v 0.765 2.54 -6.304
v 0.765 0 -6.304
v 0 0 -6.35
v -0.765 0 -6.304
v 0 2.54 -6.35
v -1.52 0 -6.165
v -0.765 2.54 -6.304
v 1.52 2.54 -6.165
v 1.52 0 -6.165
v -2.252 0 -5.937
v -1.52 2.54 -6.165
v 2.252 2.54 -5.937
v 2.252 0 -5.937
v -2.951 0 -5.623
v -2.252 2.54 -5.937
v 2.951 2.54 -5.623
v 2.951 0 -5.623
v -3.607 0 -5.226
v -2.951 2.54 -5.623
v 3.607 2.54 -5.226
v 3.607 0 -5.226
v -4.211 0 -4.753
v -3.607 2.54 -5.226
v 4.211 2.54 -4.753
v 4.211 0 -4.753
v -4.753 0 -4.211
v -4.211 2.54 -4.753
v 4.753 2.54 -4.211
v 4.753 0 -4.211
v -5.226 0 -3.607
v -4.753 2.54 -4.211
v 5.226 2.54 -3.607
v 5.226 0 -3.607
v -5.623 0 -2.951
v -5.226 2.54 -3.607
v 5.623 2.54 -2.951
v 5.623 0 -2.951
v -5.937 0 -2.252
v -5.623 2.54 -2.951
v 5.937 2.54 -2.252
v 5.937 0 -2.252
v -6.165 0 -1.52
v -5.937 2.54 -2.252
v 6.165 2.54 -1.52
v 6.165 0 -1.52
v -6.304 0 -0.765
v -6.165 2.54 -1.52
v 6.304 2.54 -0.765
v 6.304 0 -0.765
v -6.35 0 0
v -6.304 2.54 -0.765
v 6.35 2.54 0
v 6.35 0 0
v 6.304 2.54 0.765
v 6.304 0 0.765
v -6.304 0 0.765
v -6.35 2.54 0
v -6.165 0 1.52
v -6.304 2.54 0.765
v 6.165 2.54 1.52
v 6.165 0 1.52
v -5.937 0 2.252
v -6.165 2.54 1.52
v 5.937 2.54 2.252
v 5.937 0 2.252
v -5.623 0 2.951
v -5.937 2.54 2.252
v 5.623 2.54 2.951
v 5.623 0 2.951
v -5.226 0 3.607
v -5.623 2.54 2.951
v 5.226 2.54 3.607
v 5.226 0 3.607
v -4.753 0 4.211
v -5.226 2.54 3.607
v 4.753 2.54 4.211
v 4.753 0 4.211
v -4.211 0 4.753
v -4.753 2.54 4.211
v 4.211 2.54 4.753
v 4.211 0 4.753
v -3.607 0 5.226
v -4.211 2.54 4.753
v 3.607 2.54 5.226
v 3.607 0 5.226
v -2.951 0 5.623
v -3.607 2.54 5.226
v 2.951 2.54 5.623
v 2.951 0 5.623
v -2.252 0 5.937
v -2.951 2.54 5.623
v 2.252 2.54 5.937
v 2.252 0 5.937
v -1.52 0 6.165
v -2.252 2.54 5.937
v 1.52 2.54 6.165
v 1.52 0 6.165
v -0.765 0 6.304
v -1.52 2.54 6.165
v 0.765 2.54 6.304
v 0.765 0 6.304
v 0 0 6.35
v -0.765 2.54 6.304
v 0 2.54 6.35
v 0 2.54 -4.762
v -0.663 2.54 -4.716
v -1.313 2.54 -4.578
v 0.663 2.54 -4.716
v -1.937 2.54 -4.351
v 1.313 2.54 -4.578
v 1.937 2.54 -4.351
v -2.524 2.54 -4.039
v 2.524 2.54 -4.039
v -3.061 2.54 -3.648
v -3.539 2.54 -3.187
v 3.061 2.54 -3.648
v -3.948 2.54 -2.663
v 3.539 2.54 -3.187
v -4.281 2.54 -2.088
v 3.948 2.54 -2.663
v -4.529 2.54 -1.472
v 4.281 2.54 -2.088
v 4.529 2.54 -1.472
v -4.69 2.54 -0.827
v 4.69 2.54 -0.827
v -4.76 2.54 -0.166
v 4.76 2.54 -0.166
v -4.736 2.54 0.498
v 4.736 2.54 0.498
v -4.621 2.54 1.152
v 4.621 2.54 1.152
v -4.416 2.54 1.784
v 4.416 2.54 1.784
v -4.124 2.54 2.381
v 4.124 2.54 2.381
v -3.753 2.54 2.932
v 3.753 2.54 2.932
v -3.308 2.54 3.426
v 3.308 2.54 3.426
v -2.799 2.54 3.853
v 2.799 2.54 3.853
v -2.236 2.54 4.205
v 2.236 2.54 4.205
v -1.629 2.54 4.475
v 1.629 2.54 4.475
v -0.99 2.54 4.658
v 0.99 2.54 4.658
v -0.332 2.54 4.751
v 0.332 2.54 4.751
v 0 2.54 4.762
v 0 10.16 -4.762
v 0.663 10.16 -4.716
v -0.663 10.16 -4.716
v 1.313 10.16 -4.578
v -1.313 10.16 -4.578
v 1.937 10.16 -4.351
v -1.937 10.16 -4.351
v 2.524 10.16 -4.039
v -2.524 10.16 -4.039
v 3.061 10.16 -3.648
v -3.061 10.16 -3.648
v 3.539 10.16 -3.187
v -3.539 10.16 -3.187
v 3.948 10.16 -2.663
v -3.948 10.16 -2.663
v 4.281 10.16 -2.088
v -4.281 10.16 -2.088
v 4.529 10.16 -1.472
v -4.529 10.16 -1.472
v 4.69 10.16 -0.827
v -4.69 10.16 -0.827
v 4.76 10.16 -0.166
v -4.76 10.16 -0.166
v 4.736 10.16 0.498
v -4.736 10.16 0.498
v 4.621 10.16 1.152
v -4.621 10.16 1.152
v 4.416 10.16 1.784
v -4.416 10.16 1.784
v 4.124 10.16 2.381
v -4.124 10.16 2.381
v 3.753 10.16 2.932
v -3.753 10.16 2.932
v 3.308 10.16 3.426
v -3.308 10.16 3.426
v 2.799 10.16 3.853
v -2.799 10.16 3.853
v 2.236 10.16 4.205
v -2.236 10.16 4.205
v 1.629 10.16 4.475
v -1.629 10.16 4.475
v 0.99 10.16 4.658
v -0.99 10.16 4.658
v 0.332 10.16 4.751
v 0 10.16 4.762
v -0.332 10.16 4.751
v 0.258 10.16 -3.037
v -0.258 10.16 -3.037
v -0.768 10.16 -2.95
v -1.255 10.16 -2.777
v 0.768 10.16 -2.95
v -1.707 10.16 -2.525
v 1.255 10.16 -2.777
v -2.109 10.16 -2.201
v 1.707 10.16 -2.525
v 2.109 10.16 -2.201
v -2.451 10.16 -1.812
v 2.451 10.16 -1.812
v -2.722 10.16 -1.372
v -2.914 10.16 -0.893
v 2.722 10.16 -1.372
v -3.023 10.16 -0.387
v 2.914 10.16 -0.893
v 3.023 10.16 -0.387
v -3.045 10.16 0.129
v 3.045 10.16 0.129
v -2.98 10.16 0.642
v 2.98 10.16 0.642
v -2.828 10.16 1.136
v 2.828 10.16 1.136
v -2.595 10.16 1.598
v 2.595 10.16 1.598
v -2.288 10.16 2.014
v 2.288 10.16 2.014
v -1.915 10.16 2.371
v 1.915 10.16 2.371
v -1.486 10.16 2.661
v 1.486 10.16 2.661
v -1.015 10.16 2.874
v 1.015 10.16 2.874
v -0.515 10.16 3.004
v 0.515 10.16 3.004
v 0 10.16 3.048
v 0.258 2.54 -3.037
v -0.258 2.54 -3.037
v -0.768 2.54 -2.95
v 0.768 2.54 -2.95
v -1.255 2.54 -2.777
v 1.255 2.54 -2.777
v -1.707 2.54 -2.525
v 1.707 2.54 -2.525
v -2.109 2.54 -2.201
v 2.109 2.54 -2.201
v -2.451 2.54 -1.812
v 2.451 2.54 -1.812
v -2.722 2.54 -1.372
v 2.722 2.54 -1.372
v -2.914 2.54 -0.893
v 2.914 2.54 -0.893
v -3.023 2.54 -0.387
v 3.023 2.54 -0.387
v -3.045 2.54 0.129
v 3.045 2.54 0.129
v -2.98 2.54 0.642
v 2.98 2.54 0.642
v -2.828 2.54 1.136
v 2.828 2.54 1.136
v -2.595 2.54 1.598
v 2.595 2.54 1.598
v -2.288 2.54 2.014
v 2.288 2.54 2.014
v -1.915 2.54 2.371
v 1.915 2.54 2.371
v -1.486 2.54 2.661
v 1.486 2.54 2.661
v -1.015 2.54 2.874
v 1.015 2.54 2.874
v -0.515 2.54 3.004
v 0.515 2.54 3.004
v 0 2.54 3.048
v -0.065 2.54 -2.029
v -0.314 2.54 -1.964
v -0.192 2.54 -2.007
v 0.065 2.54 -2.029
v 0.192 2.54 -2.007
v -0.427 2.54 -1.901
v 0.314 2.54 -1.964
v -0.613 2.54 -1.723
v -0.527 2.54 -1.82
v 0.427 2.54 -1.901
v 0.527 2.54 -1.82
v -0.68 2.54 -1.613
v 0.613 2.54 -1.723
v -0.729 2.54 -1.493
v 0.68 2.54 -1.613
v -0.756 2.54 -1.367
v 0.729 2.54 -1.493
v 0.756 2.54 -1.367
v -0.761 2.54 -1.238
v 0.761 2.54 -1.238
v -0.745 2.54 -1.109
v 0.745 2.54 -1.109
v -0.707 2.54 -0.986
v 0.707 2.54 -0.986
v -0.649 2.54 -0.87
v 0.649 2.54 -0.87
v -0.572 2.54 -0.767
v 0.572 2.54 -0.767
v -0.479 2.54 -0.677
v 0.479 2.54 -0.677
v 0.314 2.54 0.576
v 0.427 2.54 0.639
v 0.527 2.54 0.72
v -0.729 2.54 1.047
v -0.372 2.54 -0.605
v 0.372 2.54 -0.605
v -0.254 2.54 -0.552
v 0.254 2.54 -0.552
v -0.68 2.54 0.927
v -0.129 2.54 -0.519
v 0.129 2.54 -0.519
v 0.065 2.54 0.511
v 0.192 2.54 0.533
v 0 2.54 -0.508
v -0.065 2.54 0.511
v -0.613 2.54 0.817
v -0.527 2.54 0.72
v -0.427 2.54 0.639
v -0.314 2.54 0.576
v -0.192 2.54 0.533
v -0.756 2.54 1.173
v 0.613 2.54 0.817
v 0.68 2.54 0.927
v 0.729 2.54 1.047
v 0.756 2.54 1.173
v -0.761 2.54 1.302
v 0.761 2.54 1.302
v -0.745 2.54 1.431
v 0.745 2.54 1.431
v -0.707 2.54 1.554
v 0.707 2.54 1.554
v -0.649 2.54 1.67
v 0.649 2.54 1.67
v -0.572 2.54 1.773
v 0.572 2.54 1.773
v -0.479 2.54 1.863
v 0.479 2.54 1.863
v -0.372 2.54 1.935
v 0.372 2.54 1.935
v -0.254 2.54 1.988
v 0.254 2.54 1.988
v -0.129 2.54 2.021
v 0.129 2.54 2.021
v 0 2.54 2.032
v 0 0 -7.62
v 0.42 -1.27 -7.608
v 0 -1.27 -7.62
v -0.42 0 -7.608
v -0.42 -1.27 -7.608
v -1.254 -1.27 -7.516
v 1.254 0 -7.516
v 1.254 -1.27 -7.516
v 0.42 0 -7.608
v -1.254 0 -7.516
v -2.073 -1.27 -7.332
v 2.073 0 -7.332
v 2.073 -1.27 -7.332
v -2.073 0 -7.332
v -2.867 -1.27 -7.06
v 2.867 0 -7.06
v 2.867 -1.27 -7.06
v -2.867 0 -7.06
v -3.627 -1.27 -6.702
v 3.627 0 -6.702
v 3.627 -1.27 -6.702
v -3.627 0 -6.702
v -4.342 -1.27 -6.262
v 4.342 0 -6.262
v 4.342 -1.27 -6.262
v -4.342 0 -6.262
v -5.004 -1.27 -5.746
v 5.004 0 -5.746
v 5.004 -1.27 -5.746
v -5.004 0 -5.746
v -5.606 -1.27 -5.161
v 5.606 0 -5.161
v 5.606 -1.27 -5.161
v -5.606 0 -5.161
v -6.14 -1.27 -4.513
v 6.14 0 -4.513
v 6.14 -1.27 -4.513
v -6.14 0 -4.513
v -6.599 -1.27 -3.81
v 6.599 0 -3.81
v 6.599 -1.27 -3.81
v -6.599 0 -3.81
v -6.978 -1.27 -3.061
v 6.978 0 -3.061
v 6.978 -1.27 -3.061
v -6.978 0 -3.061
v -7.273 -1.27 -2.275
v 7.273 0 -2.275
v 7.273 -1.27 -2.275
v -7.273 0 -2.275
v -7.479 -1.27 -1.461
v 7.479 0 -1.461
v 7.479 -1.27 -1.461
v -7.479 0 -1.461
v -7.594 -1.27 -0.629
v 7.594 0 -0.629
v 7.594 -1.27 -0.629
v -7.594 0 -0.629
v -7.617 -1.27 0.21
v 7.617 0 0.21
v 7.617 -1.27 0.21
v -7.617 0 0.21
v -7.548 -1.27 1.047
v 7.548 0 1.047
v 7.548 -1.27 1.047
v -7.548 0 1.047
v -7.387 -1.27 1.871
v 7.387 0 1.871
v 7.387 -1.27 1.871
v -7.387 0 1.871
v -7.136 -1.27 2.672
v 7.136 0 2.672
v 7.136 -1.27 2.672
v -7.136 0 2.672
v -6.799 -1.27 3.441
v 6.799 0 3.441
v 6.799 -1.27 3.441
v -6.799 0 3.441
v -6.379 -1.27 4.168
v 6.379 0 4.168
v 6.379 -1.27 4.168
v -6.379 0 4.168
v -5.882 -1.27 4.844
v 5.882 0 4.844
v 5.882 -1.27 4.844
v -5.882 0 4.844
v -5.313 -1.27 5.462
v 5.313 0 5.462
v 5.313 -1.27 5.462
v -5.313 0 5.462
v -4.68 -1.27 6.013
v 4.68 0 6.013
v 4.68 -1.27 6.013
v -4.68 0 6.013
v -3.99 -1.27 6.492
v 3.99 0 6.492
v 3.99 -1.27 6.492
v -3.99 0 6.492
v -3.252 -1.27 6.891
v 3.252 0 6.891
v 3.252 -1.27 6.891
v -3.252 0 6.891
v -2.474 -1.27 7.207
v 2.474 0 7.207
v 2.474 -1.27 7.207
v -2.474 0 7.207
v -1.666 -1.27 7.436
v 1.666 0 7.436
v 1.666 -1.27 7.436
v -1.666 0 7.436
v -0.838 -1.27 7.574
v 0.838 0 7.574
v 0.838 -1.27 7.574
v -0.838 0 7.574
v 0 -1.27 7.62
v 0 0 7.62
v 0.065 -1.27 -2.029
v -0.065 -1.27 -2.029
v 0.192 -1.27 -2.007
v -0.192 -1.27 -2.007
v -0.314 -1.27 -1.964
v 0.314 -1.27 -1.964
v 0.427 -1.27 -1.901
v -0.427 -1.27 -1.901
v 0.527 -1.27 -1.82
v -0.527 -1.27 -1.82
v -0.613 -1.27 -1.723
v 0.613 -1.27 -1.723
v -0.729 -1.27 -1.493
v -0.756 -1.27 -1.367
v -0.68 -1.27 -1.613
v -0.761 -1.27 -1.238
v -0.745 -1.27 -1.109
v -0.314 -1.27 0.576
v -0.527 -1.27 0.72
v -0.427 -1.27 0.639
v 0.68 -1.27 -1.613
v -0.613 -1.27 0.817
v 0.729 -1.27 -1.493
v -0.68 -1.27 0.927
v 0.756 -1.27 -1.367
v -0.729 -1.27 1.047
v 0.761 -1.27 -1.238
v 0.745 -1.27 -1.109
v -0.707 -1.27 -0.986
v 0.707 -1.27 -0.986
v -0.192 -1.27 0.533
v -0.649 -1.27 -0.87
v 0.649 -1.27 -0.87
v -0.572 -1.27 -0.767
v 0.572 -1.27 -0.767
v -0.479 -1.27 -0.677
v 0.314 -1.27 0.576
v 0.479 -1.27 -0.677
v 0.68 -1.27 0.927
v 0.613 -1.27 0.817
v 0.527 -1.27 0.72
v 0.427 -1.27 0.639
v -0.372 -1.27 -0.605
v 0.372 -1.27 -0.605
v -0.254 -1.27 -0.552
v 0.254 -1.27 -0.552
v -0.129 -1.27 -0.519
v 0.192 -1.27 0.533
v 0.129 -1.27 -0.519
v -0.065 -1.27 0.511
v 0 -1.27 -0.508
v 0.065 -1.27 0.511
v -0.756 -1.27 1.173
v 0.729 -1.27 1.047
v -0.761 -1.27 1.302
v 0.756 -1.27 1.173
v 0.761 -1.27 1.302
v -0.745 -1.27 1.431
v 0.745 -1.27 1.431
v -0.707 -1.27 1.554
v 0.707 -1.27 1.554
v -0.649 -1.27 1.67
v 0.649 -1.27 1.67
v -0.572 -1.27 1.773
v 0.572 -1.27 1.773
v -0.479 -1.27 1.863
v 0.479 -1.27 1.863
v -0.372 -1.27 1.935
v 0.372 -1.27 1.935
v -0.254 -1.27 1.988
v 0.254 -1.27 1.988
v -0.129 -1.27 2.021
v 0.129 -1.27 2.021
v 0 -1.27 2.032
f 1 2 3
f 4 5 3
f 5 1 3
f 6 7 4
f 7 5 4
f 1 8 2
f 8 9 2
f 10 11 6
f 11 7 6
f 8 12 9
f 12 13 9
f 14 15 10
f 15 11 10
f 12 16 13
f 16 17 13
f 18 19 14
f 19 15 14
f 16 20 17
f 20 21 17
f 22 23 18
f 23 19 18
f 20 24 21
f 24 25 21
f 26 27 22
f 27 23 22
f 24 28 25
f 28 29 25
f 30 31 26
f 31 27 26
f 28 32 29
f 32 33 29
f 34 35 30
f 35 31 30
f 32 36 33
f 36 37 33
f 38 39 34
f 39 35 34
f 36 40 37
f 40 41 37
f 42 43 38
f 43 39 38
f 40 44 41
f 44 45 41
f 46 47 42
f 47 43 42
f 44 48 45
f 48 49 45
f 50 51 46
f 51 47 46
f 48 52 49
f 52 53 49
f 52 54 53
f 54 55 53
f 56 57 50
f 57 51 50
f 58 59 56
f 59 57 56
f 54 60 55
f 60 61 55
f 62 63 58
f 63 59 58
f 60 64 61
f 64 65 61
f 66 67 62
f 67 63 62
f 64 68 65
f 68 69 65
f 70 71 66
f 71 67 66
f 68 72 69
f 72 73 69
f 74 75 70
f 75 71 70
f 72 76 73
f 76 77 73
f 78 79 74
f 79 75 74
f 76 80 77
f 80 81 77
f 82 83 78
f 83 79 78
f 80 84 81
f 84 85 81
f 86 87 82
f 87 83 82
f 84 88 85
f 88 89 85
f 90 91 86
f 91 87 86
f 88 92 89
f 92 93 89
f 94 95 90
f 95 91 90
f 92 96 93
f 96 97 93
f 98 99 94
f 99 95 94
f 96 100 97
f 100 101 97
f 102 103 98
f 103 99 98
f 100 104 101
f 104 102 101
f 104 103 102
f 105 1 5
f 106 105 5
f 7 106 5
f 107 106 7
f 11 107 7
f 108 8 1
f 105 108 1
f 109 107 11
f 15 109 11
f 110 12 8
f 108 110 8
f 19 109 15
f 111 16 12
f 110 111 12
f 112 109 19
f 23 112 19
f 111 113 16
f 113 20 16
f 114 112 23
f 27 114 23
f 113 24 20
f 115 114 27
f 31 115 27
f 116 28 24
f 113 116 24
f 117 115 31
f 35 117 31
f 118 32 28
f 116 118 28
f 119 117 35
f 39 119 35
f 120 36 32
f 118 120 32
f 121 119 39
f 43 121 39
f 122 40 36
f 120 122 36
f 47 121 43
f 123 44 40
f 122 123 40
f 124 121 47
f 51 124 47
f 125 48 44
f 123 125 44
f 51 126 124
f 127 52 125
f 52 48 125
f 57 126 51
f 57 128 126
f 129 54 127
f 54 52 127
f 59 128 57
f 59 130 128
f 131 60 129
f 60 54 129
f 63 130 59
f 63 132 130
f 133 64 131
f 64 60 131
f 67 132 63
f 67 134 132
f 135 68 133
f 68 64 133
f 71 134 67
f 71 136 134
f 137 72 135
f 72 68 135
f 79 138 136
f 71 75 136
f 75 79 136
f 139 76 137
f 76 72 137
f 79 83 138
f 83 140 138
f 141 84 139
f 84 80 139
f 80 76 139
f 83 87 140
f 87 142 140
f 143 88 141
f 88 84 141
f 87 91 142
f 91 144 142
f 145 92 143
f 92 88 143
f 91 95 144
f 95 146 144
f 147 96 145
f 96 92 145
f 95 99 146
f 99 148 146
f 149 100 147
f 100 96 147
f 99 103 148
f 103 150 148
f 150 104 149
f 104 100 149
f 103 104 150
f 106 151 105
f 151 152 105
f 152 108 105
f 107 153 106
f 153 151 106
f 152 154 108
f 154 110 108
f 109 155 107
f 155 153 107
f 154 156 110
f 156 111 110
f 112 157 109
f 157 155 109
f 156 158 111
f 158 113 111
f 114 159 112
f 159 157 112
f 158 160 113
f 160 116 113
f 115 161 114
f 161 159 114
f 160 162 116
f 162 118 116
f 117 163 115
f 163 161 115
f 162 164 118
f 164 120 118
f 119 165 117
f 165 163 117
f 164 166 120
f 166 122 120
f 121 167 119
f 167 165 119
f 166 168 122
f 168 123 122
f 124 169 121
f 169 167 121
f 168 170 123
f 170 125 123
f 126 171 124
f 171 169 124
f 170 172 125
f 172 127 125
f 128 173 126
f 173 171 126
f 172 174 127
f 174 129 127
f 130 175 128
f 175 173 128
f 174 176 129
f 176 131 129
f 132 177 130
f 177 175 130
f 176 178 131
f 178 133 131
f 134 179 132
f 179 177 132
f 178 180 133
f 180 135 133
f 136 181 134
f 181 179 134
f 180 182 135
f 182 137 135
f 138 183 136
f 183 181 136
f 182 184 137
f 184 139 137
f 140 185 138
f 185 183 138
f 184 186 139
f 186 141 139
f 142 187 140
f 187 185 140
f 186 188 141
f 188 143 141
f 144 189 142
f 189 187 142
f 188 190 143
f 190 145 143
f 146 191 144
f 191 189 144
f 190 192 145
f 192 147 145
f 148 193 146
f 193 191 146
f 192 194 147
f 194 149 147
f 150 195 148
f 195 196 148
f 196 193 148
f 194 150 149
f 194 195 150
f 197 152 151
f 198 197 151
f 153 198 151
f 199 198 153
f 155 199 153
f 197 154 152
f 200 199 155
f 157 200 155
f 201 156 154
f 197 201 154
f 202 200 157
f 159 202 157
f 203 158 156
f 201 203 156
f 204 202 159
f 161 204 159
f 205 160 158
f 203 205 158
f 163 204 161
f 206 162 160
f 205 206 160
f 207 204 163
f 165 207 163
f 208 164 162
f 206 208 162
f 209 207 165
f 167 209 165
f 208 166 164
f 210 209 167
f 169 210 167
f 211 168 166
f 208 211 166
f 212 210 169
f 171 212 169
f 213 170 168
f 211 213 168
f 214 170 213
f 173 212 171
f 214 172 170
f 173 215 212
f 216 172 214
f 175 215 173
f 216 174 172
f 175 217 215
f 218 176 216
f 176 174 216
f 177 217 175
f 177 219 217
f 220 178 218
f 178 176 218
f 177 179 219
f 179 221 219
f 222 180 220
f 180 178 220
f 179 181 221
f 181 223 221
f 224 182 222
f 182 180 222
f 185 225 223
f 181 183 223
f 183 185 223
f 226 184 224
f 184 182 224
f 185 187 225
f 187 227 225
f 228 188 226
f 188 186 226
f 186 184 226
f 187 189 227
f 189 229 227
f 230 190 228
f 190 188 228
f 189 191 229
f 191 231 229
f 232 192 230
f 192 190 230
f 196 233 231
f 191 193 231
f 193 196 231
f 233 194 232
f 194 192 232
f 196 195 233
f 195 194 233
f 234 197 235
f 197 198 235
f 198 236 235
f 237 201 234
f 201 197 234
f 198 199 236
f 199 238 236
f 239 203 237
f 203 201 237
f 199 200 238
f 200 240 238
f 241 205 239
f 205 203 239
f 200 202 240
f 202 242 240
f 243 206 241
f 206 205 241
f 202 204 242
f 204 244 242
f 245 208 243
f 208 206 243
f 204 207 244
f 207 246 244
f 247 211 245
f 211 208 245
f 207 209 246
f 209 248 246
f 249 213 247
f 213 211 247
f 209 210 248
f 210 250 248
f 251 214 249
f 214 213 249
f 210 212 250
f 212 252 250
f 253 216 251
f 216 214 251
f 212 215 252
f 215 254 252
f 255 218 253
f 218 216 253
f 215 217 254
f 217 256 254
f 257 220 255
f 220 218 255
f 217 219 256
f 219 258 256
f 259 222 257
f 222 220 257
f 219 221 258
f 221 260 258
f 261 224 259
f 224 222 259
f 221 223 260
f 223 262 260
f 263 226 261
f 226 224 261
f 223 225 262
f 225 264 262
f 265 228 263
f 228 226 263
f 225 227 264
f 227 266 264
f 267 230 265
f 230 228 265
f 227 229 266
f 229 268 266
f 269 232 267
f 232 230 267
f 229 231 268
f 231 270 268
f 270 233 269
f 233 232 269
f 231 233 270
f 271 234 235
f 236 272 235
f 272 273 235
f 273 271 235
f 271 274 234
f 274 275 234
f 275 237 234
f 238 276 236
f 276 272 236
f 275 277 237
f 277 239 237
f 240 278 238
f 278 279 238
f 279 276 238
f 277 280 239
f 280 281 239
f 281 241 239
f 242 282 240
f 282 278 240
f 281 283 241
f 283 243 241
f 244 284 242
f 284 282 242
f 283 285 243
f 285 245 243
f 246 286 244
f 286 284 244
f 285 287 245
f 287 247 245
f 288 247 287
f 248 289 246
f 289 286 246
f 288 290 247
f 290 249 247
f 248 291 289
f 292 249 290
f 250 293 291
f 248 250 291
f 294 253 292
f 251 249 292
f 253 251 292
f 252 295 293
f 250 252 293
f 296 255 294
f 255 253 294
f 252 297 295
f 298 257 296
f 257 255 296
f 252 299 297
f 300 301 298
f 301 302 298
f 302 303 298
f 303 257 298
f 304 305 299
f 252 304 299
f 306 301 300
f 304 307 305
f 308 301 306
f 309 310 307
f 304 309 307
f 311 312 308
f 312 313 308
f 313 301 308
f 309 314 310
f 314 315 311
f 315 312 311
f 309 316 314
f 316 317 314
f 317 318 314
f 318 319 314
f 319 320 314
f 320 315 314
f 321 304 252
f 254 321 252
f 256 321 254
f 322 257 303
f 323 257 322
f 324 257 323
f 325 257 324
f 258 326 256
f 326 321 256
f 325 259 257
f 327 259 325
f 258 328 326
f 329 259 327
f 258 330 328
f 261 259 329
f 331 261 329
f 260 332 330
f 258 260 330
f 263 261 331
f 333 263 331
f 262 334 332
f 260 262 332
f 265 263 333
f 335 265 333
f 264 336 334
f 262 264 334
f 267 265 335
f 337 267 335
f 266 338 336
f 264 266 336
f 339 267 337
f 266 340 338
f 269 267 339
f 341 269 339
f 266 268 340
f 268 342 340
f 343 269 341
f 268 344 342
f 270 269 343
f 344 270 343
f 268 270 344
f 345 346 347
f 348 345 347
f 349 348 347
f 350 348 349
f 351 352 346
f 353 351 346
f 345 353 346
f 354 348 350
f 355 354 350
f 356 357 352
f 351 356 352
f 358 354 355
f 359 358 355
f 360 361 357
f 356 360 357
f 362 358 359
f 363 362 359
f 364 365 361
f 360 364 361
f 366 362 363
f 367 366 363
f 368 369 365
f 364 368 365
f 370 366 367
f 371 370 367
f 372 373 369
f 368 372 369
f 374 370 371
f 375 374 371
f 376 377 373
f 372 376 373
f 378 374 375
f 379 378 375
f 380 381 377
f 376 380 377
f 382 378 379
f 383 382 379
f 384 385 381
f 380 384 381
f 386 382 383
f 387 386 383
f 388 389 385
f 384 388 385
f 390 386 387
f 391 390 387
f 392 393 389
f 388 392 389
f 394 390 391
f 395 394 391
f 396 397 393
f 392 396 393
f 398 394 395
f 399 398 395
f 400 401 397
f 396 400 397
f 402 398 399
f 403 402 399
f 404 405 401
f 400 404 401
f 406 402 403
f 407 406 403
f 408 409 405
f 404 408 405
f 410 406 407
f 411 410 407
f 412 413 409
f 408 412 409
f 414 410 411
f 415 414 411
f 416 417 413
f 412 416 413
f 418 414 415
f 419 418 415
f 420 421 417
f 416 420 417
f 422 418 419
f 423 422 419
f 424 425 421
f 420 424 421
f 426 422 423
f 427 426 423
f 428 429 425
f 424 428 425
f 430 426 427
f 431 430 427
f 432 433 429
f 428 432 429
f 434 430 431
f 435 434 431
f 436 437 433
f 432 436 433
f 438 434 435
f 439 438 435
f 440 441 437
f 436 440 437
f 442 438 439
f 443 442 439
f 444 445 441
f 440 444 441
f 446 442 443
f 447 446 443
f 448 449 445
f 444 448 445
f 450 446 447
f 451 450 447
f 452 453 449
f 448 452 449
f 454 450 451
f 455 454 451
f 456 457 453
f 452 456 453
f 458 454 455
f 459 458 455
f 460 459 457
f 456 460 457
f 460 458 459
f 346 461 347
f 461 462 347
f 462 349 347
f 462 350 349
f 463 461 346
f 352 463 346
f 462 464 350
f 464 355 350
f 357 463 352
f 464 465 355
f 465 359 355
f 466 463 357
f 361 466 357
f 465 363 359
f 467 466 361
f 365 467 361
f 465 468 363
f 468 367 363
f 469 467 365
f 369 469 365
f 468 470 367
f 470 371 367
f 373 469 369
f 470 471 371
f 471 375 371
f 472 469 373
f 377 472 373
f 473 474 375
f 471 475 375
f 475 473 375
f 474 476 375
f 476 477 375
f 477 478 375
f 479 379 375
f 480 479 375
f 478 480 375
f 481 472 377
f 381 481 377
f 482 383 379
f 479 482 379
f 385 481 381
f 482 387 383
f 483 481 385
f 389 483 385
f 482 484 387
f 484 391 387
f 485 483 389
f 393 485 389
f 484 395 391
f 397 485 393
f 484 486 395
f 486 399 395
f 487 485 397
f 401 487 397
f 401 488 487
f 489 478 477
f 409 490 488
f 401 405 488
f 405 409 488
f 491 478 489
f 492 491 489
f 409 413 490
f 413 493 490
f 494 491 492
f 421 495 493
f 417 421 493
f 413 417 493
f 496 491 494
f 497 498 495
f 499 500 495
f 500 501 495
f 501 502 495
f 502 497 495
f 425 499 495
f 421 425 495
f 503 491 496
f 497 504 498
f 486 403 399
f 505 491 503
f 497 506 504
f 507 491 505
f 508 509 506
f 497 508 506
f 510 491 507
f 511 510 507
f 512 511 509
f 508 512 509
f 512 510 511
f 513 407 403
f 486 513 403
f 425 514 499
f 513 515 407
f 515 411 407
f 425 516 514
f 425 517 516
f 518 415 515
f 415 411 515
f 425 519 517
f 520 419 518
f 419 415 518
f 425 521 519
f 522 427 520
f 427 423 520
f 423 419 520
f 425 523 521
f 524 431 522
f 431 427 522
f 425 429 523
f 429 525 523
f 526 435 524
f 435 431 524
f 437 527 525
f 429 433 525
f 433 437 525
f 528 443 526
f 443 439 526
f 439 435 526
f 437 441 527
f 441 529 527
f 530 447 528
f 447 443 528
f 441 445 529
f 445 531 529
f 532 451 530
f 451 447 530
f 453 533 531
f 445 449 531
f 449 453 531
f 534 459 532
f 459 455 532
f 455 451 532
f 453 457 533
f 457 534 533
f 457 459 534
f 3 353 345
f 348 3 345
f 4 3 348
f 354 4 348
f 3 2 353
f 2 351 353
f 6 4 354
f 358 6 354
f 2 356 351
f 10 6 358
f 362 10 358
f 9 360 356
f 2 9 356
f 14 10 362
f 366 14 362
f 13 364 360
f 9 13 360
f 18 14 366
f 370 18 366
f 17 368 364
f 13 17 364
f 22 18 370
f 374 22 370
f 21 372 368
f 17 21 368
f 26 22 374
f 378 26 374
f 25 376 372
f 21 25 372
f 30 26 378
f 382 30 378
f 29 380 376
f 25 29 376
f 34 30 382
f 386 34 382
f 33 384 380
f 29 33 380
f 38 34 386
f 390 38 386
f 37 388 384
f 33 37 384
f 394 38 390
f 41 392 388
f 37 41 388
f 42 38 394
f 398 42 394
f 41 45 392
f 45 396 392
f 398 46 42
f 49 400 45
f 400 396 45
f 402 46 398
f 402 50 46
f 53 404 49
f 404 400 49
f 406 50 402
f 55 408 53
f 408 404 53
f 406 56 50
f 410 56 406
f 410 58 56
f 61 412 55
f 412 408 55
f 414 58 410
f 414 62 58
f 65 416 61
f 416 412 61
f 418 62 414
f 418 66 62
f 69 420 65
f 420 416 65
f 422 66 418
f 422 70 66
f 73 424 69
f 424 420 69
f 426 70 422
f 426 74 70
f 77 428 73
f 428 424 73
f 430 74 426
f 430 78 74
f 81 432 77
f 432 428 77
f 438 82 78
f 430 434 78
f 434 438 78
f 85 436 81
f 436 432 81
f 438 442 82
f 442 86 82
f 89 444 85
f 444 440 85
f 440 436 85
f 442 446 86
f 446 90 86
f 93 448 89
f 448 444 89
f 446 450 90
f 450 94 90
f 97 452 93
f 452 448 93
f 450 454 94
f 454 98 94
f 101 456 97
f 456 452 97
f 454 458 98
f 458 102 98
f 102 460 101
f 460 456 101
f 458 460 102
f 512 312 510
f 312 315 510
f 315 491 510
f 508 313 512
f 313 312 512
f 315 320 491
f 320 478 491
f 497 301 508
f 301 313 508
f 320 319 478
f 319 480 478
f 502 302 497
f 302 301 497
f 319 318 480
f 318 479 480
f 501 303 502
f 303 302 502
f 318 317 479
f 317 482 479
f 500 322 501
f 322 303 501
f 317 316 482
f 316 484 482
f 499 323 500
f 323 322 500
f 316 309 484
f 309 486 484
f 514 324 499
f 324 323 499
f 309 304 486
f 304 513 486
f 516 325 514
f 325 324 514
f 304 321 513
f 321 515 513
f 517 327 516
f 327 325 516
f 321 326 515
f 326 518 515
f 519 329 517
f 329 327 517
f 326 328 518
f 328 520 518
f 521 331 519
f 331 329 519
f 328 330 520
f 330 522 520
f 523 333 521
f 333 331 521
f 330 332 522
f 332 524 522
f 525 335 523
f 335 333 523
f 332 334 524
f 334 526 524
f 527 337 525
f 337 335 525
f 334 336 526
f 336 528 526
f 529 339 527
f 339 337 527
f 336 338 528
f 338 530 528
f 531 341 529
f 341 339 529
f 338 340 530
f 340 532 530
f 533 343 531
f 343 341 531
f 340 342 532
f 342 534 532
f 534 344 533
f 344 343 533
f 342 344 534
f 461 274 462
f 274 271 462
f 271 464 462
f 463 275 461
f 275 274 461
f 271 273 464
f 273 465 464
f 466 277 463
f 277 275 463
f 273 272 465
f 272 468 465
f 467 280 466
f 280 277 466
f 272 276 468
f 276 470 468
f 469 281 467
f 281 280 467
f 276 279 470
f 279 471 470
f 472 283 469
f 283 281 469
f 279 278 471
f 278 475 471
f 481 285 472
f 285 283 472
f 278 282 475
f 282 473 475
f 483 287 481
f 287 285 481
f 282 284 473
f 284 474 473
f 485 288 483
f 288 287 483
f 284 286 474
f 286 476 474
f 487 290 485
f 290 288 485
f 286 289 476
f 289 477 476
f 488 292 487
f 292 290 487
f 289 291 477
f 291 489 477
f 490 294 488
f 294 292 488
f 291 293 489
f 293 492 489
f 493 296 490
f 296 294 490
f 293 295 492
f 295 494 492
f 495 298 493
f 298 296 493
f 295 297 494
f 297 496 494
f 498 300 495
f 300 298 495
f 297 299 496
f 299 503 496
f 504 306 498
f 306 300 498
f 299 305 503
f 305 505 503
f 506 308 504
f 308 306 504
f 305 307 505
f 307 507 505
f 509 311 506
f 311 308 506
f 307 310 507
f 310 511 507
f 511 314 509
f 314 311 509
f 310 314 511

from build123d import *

# Parameters (mm, degrees)
SKETCH1_R               = 6.35
BOSS_EXTRUDE1_DEPTH     = 2.54
SKETCH2_R               = 4.7625
BOSS_EXTRUDE2_DEPTH     = 7.62
SKETCH3_R               = 3.048
CUT_EXTRUDE1_DEPTH      = 7.62
SKETCH6_R               = 7.62
BOSS_EXTRUDE3_DEPTH     = 1.27
SKETCH4_R               = 0.762
CUT_EXTRUDE2_DEPTH      = 8.62
CUT_EXTRUDE2_DEPTH_BACK = 4.81
SKETCH5_R               = 0.762
CUT_EXTRUDE3_DEPTH      = 4.81


with BuildPart() as part:
    # Sketch1 → Boss-Extrude1 (new body)
    with BuildSketch(Plane(origin=(0, 0, 0), x_dir=(1, 0, 0), z_dir=(0, 1, 0))):
        Circle(SKETCH1_R)
    extrude(amount=BOSS_EXTRUDE1_DEPTH)

    # Sketch2 → Boss-Extrude2 (add)
    with BuildSketch(Plane(origin=(0, 2.54, 0), x_dir=(1, 0, 0), z_dir=(0, 1, 0))):
        Circle(SKETCH2_R)
    extrude(amount=BOSS_EXTRUDE2_DEPTH)

    # Sketch3 → Cut-Extrude1 (cut)
    with BuildSketch(Plane(origin=(0, 10.16, 0), x_dir=(1, 0, 0), z_dir=(0, 1, 0))):
        Circle(SKETCH3_R)
    extrude(amount=-CUT_EXTRUDE1_DEPTH, mode=Mode.SUBTRACT)

    # Sketch6 → Boss-Extrude3 (add)
    with BuildSketch(Plane.XZ):
        Circle(SKETCH6_R)
    extrude(amount=BOSS_EXTRUDE3_DEPTH)

    # Sketch4 → Cut-Extrude2 (cut, two sides)
    with BuildSketch(Plane(origin=(0, 2.54, 0), x_dir=(1, 0, 0), z_dir=(0, 1, 0))) as cut_extrude2_sk:
        with Locations((0, -1.27)):
            Circle(SKETCH4_R)
    extrude(amount=CUT_EXTRUDE2_DEPTH, mode=Mode.SUBTRACT)
    extrude(cut_extrude2_sk.sketch, amount=-CUT_EXTRUDE2_DEPTH_BACK, mode=Mode.SUBTRACT)

    # Sketch5 → Cut-Extrude3 (cut, through all)
    with BuildSketch(Plane(origin=(0, 2.54, 0), x_dir=(1, 0, 0), z_dir=(0, 1, 0))):
        with Locations((0, 1.27)):
            Circle(SKETCH5_R)
    extrude(amount=-CUT_EXTRUDE3_DEPTH, mode=Mode.SUBTRACT)


solid = part.part
